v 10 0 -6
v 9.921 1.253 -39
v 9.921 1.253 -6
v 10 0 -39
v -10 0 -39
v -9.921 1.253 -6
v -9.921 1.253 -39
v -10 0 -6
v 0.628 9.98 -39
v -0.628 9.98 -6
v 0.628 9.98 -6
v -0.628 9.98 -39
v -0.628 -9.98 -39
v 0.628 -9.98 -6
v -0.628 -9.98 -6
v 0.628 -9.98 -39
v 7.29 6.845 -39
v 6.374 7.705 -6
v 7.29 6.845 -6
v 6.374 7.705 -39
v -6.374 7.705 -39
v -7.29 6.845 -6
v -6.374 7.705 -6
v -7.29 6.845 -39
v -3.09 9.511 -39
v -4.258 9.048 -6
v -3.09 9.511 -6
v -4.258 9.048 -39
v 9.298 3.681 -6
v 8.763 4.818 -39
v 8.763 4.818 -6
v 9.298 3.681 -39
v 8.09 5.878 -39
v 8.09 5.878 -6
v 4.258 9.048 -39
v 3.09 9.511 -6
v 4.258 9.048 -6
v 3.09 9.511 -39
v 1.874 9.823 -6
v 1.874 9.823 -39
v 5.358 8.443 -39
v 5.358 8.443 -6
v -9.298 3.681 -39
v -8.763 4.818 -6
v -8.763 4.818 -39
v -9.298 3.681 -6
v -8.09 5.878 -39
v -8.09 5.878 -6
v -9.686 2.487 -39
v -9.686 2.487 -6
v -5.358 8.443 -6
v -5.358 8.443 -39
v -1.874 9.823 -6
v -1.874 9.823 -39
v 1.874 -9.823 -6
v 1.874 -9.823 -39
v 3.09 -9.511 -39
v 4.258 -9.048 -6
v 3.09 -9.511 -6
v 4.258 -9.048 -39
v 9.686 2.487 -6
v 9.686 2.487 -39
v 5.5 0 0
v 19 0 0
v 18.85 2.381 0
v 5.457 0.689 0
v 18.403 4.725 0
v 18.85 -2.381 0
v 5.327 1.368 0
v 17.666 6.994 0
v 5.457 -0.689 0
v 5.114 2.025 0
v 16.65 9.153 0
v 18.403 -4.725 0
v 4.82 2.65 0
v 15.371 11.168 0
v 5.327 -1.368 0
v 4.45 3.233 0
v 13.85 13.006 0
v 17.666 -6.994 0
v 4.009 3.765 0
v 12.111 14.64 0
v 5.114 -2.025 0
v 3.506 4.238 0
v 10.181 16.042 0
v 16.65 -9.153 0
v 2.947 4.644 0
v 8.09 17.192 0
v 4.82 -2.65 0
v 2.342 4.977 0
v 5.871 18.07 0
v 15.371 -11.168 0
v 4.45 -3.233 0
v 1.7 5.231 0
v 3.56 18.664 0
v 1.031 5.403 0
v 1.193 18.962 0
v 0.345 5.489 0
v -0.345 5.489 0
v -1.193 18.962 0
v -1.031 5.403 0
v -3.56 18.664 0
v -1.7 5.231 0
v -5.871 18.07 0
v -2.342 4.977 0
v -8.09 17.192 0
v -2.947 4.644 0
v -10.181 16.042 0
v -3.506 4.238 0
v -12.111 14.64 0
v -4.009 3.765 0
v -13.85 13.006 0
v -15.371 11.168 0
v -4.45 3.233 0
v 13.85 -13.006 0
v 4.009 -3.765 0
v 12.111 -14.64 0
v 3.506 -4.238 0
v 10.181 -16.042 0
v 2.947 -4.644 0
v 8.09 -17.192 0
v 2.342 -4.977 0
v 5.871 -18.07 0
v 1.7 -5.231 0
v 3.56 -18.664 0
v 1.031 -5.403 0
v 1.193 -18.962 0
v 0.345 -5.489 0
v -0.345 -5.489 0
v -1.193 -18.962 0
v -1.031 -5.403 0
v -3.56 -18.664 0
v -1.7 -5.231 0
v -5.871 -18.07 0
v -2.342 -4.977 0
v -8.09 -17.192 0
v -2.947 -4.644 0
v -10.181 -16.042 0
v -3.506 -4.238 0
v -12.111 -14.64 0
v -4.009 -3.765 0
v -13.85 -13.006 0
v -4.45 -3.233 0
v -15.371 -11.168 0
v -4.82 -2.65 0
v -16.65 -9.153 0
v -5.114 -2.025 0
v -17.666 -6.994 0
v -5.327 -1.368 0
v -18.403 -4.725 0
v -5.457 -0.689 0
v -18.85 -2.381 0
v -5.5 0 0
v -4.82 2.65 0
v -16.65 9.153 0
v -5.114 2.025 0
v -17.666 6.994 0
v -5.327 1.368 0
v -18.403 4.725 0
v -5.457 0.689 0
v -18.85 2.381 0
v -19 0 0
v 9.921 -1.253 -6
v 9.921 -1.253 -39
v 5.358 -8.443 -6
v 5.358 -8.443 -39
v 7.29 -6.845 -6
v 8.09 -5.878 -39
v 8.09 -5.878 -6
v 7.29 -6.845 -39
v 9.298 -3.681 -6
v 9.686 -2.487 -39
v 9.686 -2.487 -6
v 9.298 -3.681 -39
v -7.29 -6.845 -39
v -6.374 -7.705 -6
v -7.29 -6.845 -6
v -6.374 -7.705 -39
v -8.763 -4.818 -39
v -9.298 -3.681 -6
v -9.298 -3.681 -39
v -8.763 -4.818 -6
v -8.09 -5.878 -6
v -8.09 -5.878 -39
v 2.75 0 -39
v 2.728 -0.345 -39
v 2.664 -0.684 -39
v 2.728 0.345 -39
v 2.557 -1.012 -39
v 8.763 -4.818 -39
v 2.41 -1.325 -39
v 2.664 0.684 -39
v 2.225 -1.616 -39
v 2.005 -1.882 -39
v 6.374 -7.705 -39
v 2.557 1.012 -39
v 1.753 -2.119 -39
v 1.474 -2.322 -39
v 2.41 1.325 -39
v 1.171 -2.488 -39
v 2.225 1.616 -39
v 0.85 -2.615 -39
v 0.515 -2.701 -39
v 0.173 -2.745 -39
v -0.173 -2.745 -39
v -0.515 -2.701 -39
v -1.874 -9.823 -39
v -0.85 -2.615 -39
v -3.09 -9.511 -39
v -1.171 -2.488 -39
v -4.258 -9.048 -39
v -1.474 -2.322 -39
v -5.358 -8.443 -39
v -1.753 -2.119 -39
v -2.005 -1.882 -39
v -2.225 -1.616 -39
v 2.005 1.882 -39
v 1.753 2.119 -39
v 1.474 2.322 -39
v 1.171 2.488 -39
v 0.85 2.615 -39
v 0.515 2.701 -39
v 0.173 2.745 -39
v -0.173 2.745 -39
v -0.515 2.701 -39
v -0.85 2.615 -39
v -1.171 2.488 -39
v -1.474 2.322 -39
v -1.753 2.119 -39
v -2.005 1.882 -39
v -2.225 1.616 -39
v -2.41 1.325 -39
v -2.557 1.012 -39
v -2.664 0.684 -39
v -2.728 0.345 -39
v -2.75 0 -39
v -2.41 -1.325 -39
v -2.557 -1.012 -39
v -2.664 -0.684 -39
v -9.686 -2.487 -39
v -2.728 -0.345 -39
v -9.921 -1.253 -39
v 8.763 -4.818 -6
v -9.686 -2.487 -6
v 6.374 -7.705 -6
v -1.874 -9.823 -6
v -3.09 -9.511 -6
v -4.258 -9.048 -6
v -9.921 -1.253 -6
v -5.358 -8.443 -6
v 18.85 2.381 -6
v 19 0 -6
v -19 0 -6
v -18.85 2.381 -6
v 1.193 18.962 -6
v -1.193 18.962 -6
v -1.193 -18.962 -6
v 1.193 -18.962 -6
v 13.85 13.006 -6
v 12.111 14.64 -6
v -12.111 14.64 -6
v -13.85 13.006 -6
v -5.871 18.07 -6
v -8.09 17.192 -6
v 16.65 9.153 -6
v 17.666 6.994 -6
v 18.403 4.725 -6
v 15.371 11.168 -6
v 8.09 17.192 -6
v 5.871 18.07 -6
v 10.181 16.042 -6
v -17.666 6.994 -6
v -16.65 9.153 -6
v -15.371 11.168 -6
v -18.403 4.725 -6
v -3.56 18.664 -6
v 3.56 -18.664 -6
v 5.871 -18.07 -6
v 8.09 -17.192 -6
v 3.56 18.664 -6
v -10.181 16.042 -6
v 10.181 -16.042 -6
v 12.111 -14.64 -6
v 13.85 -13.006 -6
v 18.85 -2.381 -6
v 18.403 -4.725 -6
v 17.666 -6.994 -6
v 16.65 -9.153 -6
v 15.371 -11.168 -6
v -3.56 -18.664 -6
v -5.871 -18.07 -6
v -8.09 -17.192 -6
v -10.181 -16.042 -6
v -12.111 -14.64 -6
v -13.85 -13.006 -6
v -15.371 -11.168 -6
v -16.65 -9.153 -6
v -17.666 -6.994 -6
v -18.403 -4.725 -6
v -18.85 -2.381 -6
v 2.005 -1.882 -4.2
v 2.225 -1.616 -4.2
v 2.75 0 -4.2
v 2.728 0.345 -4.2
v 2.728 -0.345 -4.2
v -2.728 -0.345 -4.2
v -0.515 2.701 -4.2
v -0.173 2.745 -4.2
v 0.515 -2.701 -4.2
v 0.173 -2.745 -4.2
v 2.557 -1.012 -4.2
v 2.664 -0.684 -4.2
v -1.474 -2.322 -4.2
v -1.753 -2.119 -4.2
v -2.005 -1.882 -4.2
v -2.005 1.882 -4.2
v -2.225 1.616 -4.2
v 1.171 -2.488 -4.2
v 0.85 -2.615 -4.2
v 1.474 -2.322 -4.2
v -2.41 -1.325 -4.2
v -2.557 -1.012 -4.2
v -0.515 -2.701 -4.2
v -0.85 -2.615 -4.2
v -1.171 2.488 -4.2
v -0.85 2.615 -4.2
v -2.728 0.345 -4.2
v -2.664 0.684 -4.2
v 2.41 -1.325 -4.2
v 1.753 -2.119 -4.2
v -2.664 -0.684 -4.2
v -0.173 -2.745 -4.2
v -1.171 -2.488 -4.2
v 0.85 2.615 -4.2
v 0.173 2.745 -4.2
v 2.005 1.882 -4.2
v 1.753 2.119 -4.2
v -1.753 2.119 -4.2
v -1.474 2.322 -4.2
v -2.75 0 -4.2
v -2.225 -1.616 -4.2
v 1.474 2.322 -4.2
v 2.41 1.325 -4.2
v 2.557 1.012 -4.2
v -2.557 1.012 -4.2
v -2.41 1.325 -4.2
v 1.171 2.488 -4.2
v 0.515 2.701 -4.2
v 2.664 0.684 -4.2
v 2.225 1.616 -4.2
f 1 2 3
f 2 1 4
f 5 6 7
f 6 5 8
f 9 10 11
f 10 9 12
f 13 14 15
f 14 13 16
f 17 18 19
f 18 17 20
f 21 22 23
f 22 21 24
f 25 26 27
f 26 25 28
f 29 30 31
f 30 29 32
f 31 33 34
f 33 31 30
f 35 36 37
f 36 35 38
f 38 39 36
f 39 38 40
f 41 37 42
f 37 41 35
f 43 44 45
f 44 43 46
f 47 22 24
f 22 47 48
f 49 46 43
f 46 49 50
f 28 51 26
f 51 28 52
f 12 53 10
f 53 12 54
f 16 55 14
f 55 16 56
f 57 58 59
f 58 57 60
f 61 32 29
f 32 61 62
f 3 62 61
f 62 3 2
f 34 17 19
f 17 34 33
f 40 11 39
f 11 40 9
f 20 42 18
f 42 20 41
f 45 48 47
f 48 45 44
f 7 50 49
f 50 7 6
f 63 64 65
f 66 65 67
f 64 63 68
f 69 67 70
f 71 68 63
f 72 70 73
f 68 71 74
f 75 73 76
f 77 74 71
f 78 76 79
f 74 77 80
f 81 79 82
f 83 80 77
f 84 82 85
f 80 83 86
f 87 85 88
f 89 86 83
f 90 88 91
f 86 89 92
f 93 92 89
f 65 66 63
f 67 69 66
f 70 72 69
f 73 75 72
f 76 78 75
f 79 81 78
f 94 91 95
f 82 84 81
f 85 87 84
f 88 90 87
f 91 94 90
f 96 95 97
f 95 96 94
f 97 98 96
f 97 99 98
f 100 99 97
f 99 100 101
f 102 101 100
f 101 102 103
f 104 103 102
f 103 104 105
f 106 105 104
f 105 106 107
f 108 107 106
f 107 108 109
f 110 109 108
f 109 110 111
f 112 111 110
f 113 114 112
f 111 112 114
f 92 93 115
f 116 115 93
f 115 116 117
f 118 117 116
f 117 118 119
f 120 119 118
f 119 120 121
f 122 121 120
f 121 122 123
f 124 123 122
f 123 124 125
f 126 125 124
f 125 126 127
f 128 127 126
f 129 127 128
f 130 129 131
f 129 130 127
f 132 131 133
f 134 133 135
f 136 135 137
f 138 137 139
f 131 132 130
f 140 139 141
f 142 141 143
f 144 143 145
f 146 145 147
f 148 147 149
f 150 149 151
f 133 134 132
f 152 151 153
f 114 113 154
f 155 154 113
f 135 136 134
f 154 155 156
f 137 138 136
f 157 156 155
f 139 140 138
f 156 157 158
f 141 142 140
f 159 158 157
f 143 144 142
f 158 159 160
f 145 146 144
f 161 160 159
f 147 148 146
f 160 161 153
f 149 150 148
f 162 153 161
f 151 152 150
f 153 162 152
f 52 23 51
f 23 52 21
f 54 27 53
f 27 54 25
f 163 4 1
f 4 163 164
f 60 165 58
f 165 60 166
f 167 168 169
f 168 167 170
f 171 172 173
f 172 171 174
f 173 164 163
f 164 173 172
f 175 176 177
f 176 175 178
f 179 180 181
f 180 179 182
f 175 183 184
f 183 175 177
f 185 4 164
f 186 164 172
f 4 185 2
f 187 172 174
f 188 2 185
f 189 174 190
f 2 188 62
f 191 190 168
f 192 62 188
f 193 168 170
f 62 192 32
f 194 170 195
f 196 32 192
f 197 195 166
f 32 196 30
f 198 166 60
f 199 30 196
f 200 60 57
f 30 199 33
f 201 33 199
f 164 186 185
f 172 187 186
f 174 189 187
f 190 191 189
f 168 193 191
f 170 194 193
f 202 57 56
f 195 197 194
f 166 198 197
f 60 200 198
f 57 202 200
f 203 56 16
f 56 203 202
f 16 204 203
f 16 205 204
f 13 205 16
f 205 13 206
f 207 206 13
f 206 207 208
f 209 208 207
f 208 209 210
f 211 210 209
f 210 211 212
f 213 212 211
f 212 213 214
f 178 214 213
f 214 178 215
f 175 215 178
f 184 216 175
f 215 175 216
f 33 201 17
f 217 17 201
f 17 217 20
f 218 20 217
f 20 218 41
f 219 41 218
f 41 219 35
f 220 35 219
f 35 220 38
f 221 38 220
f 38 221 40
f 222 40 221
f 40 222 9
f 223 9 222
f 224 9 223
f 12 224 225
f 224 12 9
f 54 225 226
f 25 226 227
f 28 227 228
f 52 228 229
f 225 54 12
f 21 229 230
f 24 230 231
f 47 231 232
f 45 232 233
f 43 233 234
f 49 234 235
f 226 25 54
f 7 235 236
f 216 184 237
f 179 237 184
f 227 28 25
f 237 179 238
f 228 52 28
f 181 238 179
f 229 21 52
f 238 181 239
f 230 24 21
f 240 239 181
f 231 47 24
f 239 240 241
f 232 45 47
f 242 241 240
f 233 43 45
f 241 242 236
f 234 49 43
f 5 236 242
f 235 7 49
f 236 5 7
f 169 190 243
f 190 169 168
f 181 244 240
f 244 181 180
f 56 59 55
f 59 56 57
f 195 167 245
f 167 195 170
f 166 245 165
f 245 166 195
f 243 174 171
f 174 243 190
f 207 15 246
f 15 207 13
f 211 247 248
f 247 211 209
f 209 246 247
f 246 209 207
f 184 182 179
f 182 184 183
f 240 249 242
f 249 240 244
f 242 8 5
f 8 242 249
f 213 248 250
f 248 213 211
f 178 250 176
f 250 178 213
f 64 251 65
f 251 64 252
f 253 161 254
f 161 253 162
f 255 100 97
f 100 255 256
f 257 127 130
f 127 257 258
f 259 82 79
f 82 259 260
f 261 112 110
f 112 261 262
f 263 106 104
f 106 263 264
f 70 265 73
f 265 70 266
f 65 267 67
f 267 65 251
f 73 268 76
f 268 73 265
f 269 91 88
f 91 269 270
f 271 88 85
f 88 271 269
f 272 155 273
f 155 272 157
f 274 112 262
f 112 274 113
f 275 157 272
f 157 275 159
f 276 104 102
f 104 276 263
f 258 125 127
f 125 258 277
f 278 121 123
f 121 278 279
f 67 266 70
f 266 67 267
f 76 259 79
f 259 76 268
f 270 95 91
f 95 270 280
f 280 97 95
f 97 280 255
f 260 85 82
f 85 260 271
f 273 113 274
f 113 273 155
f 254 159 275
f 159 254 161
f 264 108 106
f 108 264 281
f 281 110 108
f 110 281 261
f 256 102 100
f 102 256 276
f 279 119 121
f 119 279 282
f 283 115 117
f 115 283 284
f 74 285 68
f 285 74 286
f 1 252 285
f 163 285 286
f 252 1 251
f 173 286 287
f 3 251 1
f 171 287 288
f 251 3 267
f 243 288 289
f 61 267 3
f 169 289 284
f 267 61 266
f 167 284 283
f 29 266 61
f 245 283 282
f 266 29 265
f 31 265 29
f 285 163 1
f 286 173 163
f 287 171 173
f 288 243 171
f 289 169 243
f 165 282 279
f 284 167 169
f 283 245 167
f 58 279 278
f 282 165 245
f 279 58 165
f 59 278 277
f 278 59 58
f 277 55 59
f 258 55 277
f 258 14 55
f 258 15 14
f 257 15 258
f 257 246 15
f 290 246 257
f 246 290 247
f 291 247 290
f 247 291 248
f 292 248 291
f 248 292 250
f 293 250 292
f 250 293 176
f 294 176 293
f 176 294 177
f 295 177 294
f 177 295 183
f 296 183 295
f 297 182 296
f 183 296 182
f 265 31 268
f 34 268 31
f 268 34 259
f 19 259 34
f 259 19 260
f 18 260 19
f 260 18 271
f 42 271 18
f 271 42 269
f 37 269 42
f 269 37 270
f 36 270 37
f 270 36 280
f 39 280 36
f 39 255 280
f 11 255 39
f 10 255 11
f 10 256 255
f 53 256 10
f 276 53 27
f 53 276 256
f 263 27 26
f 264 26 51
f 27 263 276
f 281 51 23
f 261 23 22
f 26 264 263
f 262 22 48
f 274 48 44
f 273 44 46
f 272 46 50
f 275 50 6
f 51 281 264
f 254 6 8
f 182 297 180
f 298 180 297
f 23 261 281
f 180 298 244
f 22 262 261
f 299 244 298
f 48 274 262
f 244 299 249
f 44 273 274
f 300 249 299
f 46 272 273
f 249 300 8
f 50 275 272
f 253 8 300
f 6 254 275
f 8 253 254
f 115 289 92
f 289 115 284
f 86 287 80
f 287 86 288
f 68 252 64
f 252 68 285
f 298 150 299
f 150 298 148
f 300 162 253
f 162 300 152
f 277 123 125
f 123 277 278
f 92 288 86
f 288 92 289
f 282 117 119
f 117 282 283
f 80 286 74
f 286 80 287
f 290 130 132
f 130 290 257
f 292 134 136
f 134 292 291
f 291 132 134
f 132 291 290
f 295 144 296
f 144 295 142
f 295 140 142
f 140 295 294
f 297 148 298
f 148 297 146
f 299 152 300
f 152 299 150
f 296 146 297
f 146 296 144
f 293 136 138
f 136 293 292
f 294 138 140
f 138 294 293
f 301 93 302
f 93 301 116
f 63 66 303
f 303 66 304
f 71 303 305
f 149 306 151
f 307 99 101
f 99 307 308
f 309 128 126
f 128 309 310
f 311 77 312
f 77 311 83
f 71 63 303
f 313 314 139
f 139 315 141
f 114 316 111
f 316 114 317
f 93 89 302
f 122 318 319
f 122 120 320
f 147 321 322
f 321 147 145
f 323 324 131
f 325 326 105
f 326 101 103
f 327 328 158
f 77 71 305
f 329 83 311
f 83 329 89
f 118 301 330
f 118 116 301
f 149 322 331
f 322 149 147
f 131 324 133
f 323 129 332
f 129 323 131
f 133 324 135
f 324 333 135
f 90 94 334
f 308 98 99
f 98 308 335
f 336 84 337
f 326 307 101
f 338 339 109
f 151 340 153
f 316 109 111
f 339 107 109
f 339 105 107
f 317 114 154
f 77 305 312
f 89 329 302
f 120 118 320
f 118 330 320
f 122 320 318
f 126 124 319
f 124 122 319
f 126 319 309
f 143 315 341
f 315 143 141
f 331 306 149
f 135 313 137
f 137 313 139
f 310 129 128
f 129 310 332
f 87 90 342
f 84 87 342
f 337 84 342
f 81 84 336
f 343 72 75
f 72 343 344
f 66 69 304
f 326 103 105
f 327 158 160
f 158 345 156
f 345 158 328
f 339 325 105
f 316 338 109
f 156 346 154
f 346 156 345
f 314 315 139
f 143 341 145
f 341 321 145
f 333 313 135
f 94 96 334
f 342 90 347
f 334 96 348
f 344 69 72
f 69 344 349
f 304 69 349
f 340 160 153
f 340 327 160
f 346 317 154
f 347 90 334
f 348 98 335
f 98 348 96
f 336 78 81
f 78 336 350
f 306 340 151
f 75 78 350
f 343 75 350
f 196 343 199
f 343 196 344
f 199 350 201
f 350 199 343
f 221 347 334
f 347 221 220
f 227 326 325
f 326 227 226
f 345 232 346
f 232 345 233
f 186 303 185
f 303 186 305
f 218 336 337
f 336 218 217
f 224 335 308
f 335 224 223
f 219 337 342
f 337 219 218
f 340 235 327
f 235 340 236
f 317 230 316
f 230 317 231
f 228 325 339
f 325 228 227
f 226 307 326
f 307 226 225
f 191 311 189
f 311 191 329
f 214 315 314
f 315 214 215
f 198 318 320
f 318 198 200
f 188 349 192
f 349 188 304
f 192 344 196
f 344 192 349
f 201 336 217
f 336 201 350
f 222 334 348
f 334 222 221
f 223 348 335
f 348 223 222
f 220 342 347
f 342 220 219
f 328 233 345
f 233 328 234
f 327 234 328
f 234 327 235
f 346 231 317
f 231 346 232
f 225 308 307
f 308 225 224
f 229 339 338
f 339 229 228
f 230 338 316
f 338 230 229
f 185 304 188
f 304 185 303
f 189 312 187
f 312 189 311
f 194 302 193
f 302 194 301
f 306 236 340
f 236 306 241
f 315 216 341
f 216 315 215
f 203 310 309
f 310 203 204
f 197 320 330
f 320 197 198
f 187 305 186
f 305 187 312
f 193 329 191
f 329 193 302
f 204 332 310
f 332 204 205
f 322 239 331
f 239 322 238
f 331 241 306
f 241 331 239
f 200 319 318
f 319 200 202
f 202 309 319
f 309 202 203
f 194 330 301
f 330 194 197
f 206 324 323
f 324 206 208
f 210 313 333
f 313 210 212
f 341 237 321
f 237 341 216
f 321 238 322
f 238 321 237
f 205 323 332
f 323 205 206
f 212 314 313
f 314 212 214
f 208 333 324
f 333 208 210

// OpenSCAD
$fn = 50;


difference() {
	union() {
		translate(v = [0, 0, -39.0000000000]) {
			cylinder(h = 39, r = 10.0000000000);
		}
		translate(v = [0, 0, -6.0000000000]) {
			cylinder(h = 6, r = 19.0000000000);
		}
	}
	union() {
		translate(v = [0, 0, 0]) {
			rotate(a = [0, 0, 0]) {
				difference() {
					union() {
						#translate(v = [0, 0, -39.0000000000]) {
							cylinder(h = 39, r = 2.2500000000);
						}
						#translate(v = [0, 0, -4.2000000000]) {
							cylinder(h = 4.2000000000, r = 10.0000000000, r1 = 2.7500000000, r2 = 5.5000000000);
						}
						#translate(v = [0, 0, -39.0000000000]) {
							cylinder(h = 39, r = 2.7500000000);
						}
						#translate(v = [0, 0, -39.0000000000]) {
							cylinder(h = 39, r = 2.2500000000);
						}
					}
					union();
				}
			}
		}
	}
}
